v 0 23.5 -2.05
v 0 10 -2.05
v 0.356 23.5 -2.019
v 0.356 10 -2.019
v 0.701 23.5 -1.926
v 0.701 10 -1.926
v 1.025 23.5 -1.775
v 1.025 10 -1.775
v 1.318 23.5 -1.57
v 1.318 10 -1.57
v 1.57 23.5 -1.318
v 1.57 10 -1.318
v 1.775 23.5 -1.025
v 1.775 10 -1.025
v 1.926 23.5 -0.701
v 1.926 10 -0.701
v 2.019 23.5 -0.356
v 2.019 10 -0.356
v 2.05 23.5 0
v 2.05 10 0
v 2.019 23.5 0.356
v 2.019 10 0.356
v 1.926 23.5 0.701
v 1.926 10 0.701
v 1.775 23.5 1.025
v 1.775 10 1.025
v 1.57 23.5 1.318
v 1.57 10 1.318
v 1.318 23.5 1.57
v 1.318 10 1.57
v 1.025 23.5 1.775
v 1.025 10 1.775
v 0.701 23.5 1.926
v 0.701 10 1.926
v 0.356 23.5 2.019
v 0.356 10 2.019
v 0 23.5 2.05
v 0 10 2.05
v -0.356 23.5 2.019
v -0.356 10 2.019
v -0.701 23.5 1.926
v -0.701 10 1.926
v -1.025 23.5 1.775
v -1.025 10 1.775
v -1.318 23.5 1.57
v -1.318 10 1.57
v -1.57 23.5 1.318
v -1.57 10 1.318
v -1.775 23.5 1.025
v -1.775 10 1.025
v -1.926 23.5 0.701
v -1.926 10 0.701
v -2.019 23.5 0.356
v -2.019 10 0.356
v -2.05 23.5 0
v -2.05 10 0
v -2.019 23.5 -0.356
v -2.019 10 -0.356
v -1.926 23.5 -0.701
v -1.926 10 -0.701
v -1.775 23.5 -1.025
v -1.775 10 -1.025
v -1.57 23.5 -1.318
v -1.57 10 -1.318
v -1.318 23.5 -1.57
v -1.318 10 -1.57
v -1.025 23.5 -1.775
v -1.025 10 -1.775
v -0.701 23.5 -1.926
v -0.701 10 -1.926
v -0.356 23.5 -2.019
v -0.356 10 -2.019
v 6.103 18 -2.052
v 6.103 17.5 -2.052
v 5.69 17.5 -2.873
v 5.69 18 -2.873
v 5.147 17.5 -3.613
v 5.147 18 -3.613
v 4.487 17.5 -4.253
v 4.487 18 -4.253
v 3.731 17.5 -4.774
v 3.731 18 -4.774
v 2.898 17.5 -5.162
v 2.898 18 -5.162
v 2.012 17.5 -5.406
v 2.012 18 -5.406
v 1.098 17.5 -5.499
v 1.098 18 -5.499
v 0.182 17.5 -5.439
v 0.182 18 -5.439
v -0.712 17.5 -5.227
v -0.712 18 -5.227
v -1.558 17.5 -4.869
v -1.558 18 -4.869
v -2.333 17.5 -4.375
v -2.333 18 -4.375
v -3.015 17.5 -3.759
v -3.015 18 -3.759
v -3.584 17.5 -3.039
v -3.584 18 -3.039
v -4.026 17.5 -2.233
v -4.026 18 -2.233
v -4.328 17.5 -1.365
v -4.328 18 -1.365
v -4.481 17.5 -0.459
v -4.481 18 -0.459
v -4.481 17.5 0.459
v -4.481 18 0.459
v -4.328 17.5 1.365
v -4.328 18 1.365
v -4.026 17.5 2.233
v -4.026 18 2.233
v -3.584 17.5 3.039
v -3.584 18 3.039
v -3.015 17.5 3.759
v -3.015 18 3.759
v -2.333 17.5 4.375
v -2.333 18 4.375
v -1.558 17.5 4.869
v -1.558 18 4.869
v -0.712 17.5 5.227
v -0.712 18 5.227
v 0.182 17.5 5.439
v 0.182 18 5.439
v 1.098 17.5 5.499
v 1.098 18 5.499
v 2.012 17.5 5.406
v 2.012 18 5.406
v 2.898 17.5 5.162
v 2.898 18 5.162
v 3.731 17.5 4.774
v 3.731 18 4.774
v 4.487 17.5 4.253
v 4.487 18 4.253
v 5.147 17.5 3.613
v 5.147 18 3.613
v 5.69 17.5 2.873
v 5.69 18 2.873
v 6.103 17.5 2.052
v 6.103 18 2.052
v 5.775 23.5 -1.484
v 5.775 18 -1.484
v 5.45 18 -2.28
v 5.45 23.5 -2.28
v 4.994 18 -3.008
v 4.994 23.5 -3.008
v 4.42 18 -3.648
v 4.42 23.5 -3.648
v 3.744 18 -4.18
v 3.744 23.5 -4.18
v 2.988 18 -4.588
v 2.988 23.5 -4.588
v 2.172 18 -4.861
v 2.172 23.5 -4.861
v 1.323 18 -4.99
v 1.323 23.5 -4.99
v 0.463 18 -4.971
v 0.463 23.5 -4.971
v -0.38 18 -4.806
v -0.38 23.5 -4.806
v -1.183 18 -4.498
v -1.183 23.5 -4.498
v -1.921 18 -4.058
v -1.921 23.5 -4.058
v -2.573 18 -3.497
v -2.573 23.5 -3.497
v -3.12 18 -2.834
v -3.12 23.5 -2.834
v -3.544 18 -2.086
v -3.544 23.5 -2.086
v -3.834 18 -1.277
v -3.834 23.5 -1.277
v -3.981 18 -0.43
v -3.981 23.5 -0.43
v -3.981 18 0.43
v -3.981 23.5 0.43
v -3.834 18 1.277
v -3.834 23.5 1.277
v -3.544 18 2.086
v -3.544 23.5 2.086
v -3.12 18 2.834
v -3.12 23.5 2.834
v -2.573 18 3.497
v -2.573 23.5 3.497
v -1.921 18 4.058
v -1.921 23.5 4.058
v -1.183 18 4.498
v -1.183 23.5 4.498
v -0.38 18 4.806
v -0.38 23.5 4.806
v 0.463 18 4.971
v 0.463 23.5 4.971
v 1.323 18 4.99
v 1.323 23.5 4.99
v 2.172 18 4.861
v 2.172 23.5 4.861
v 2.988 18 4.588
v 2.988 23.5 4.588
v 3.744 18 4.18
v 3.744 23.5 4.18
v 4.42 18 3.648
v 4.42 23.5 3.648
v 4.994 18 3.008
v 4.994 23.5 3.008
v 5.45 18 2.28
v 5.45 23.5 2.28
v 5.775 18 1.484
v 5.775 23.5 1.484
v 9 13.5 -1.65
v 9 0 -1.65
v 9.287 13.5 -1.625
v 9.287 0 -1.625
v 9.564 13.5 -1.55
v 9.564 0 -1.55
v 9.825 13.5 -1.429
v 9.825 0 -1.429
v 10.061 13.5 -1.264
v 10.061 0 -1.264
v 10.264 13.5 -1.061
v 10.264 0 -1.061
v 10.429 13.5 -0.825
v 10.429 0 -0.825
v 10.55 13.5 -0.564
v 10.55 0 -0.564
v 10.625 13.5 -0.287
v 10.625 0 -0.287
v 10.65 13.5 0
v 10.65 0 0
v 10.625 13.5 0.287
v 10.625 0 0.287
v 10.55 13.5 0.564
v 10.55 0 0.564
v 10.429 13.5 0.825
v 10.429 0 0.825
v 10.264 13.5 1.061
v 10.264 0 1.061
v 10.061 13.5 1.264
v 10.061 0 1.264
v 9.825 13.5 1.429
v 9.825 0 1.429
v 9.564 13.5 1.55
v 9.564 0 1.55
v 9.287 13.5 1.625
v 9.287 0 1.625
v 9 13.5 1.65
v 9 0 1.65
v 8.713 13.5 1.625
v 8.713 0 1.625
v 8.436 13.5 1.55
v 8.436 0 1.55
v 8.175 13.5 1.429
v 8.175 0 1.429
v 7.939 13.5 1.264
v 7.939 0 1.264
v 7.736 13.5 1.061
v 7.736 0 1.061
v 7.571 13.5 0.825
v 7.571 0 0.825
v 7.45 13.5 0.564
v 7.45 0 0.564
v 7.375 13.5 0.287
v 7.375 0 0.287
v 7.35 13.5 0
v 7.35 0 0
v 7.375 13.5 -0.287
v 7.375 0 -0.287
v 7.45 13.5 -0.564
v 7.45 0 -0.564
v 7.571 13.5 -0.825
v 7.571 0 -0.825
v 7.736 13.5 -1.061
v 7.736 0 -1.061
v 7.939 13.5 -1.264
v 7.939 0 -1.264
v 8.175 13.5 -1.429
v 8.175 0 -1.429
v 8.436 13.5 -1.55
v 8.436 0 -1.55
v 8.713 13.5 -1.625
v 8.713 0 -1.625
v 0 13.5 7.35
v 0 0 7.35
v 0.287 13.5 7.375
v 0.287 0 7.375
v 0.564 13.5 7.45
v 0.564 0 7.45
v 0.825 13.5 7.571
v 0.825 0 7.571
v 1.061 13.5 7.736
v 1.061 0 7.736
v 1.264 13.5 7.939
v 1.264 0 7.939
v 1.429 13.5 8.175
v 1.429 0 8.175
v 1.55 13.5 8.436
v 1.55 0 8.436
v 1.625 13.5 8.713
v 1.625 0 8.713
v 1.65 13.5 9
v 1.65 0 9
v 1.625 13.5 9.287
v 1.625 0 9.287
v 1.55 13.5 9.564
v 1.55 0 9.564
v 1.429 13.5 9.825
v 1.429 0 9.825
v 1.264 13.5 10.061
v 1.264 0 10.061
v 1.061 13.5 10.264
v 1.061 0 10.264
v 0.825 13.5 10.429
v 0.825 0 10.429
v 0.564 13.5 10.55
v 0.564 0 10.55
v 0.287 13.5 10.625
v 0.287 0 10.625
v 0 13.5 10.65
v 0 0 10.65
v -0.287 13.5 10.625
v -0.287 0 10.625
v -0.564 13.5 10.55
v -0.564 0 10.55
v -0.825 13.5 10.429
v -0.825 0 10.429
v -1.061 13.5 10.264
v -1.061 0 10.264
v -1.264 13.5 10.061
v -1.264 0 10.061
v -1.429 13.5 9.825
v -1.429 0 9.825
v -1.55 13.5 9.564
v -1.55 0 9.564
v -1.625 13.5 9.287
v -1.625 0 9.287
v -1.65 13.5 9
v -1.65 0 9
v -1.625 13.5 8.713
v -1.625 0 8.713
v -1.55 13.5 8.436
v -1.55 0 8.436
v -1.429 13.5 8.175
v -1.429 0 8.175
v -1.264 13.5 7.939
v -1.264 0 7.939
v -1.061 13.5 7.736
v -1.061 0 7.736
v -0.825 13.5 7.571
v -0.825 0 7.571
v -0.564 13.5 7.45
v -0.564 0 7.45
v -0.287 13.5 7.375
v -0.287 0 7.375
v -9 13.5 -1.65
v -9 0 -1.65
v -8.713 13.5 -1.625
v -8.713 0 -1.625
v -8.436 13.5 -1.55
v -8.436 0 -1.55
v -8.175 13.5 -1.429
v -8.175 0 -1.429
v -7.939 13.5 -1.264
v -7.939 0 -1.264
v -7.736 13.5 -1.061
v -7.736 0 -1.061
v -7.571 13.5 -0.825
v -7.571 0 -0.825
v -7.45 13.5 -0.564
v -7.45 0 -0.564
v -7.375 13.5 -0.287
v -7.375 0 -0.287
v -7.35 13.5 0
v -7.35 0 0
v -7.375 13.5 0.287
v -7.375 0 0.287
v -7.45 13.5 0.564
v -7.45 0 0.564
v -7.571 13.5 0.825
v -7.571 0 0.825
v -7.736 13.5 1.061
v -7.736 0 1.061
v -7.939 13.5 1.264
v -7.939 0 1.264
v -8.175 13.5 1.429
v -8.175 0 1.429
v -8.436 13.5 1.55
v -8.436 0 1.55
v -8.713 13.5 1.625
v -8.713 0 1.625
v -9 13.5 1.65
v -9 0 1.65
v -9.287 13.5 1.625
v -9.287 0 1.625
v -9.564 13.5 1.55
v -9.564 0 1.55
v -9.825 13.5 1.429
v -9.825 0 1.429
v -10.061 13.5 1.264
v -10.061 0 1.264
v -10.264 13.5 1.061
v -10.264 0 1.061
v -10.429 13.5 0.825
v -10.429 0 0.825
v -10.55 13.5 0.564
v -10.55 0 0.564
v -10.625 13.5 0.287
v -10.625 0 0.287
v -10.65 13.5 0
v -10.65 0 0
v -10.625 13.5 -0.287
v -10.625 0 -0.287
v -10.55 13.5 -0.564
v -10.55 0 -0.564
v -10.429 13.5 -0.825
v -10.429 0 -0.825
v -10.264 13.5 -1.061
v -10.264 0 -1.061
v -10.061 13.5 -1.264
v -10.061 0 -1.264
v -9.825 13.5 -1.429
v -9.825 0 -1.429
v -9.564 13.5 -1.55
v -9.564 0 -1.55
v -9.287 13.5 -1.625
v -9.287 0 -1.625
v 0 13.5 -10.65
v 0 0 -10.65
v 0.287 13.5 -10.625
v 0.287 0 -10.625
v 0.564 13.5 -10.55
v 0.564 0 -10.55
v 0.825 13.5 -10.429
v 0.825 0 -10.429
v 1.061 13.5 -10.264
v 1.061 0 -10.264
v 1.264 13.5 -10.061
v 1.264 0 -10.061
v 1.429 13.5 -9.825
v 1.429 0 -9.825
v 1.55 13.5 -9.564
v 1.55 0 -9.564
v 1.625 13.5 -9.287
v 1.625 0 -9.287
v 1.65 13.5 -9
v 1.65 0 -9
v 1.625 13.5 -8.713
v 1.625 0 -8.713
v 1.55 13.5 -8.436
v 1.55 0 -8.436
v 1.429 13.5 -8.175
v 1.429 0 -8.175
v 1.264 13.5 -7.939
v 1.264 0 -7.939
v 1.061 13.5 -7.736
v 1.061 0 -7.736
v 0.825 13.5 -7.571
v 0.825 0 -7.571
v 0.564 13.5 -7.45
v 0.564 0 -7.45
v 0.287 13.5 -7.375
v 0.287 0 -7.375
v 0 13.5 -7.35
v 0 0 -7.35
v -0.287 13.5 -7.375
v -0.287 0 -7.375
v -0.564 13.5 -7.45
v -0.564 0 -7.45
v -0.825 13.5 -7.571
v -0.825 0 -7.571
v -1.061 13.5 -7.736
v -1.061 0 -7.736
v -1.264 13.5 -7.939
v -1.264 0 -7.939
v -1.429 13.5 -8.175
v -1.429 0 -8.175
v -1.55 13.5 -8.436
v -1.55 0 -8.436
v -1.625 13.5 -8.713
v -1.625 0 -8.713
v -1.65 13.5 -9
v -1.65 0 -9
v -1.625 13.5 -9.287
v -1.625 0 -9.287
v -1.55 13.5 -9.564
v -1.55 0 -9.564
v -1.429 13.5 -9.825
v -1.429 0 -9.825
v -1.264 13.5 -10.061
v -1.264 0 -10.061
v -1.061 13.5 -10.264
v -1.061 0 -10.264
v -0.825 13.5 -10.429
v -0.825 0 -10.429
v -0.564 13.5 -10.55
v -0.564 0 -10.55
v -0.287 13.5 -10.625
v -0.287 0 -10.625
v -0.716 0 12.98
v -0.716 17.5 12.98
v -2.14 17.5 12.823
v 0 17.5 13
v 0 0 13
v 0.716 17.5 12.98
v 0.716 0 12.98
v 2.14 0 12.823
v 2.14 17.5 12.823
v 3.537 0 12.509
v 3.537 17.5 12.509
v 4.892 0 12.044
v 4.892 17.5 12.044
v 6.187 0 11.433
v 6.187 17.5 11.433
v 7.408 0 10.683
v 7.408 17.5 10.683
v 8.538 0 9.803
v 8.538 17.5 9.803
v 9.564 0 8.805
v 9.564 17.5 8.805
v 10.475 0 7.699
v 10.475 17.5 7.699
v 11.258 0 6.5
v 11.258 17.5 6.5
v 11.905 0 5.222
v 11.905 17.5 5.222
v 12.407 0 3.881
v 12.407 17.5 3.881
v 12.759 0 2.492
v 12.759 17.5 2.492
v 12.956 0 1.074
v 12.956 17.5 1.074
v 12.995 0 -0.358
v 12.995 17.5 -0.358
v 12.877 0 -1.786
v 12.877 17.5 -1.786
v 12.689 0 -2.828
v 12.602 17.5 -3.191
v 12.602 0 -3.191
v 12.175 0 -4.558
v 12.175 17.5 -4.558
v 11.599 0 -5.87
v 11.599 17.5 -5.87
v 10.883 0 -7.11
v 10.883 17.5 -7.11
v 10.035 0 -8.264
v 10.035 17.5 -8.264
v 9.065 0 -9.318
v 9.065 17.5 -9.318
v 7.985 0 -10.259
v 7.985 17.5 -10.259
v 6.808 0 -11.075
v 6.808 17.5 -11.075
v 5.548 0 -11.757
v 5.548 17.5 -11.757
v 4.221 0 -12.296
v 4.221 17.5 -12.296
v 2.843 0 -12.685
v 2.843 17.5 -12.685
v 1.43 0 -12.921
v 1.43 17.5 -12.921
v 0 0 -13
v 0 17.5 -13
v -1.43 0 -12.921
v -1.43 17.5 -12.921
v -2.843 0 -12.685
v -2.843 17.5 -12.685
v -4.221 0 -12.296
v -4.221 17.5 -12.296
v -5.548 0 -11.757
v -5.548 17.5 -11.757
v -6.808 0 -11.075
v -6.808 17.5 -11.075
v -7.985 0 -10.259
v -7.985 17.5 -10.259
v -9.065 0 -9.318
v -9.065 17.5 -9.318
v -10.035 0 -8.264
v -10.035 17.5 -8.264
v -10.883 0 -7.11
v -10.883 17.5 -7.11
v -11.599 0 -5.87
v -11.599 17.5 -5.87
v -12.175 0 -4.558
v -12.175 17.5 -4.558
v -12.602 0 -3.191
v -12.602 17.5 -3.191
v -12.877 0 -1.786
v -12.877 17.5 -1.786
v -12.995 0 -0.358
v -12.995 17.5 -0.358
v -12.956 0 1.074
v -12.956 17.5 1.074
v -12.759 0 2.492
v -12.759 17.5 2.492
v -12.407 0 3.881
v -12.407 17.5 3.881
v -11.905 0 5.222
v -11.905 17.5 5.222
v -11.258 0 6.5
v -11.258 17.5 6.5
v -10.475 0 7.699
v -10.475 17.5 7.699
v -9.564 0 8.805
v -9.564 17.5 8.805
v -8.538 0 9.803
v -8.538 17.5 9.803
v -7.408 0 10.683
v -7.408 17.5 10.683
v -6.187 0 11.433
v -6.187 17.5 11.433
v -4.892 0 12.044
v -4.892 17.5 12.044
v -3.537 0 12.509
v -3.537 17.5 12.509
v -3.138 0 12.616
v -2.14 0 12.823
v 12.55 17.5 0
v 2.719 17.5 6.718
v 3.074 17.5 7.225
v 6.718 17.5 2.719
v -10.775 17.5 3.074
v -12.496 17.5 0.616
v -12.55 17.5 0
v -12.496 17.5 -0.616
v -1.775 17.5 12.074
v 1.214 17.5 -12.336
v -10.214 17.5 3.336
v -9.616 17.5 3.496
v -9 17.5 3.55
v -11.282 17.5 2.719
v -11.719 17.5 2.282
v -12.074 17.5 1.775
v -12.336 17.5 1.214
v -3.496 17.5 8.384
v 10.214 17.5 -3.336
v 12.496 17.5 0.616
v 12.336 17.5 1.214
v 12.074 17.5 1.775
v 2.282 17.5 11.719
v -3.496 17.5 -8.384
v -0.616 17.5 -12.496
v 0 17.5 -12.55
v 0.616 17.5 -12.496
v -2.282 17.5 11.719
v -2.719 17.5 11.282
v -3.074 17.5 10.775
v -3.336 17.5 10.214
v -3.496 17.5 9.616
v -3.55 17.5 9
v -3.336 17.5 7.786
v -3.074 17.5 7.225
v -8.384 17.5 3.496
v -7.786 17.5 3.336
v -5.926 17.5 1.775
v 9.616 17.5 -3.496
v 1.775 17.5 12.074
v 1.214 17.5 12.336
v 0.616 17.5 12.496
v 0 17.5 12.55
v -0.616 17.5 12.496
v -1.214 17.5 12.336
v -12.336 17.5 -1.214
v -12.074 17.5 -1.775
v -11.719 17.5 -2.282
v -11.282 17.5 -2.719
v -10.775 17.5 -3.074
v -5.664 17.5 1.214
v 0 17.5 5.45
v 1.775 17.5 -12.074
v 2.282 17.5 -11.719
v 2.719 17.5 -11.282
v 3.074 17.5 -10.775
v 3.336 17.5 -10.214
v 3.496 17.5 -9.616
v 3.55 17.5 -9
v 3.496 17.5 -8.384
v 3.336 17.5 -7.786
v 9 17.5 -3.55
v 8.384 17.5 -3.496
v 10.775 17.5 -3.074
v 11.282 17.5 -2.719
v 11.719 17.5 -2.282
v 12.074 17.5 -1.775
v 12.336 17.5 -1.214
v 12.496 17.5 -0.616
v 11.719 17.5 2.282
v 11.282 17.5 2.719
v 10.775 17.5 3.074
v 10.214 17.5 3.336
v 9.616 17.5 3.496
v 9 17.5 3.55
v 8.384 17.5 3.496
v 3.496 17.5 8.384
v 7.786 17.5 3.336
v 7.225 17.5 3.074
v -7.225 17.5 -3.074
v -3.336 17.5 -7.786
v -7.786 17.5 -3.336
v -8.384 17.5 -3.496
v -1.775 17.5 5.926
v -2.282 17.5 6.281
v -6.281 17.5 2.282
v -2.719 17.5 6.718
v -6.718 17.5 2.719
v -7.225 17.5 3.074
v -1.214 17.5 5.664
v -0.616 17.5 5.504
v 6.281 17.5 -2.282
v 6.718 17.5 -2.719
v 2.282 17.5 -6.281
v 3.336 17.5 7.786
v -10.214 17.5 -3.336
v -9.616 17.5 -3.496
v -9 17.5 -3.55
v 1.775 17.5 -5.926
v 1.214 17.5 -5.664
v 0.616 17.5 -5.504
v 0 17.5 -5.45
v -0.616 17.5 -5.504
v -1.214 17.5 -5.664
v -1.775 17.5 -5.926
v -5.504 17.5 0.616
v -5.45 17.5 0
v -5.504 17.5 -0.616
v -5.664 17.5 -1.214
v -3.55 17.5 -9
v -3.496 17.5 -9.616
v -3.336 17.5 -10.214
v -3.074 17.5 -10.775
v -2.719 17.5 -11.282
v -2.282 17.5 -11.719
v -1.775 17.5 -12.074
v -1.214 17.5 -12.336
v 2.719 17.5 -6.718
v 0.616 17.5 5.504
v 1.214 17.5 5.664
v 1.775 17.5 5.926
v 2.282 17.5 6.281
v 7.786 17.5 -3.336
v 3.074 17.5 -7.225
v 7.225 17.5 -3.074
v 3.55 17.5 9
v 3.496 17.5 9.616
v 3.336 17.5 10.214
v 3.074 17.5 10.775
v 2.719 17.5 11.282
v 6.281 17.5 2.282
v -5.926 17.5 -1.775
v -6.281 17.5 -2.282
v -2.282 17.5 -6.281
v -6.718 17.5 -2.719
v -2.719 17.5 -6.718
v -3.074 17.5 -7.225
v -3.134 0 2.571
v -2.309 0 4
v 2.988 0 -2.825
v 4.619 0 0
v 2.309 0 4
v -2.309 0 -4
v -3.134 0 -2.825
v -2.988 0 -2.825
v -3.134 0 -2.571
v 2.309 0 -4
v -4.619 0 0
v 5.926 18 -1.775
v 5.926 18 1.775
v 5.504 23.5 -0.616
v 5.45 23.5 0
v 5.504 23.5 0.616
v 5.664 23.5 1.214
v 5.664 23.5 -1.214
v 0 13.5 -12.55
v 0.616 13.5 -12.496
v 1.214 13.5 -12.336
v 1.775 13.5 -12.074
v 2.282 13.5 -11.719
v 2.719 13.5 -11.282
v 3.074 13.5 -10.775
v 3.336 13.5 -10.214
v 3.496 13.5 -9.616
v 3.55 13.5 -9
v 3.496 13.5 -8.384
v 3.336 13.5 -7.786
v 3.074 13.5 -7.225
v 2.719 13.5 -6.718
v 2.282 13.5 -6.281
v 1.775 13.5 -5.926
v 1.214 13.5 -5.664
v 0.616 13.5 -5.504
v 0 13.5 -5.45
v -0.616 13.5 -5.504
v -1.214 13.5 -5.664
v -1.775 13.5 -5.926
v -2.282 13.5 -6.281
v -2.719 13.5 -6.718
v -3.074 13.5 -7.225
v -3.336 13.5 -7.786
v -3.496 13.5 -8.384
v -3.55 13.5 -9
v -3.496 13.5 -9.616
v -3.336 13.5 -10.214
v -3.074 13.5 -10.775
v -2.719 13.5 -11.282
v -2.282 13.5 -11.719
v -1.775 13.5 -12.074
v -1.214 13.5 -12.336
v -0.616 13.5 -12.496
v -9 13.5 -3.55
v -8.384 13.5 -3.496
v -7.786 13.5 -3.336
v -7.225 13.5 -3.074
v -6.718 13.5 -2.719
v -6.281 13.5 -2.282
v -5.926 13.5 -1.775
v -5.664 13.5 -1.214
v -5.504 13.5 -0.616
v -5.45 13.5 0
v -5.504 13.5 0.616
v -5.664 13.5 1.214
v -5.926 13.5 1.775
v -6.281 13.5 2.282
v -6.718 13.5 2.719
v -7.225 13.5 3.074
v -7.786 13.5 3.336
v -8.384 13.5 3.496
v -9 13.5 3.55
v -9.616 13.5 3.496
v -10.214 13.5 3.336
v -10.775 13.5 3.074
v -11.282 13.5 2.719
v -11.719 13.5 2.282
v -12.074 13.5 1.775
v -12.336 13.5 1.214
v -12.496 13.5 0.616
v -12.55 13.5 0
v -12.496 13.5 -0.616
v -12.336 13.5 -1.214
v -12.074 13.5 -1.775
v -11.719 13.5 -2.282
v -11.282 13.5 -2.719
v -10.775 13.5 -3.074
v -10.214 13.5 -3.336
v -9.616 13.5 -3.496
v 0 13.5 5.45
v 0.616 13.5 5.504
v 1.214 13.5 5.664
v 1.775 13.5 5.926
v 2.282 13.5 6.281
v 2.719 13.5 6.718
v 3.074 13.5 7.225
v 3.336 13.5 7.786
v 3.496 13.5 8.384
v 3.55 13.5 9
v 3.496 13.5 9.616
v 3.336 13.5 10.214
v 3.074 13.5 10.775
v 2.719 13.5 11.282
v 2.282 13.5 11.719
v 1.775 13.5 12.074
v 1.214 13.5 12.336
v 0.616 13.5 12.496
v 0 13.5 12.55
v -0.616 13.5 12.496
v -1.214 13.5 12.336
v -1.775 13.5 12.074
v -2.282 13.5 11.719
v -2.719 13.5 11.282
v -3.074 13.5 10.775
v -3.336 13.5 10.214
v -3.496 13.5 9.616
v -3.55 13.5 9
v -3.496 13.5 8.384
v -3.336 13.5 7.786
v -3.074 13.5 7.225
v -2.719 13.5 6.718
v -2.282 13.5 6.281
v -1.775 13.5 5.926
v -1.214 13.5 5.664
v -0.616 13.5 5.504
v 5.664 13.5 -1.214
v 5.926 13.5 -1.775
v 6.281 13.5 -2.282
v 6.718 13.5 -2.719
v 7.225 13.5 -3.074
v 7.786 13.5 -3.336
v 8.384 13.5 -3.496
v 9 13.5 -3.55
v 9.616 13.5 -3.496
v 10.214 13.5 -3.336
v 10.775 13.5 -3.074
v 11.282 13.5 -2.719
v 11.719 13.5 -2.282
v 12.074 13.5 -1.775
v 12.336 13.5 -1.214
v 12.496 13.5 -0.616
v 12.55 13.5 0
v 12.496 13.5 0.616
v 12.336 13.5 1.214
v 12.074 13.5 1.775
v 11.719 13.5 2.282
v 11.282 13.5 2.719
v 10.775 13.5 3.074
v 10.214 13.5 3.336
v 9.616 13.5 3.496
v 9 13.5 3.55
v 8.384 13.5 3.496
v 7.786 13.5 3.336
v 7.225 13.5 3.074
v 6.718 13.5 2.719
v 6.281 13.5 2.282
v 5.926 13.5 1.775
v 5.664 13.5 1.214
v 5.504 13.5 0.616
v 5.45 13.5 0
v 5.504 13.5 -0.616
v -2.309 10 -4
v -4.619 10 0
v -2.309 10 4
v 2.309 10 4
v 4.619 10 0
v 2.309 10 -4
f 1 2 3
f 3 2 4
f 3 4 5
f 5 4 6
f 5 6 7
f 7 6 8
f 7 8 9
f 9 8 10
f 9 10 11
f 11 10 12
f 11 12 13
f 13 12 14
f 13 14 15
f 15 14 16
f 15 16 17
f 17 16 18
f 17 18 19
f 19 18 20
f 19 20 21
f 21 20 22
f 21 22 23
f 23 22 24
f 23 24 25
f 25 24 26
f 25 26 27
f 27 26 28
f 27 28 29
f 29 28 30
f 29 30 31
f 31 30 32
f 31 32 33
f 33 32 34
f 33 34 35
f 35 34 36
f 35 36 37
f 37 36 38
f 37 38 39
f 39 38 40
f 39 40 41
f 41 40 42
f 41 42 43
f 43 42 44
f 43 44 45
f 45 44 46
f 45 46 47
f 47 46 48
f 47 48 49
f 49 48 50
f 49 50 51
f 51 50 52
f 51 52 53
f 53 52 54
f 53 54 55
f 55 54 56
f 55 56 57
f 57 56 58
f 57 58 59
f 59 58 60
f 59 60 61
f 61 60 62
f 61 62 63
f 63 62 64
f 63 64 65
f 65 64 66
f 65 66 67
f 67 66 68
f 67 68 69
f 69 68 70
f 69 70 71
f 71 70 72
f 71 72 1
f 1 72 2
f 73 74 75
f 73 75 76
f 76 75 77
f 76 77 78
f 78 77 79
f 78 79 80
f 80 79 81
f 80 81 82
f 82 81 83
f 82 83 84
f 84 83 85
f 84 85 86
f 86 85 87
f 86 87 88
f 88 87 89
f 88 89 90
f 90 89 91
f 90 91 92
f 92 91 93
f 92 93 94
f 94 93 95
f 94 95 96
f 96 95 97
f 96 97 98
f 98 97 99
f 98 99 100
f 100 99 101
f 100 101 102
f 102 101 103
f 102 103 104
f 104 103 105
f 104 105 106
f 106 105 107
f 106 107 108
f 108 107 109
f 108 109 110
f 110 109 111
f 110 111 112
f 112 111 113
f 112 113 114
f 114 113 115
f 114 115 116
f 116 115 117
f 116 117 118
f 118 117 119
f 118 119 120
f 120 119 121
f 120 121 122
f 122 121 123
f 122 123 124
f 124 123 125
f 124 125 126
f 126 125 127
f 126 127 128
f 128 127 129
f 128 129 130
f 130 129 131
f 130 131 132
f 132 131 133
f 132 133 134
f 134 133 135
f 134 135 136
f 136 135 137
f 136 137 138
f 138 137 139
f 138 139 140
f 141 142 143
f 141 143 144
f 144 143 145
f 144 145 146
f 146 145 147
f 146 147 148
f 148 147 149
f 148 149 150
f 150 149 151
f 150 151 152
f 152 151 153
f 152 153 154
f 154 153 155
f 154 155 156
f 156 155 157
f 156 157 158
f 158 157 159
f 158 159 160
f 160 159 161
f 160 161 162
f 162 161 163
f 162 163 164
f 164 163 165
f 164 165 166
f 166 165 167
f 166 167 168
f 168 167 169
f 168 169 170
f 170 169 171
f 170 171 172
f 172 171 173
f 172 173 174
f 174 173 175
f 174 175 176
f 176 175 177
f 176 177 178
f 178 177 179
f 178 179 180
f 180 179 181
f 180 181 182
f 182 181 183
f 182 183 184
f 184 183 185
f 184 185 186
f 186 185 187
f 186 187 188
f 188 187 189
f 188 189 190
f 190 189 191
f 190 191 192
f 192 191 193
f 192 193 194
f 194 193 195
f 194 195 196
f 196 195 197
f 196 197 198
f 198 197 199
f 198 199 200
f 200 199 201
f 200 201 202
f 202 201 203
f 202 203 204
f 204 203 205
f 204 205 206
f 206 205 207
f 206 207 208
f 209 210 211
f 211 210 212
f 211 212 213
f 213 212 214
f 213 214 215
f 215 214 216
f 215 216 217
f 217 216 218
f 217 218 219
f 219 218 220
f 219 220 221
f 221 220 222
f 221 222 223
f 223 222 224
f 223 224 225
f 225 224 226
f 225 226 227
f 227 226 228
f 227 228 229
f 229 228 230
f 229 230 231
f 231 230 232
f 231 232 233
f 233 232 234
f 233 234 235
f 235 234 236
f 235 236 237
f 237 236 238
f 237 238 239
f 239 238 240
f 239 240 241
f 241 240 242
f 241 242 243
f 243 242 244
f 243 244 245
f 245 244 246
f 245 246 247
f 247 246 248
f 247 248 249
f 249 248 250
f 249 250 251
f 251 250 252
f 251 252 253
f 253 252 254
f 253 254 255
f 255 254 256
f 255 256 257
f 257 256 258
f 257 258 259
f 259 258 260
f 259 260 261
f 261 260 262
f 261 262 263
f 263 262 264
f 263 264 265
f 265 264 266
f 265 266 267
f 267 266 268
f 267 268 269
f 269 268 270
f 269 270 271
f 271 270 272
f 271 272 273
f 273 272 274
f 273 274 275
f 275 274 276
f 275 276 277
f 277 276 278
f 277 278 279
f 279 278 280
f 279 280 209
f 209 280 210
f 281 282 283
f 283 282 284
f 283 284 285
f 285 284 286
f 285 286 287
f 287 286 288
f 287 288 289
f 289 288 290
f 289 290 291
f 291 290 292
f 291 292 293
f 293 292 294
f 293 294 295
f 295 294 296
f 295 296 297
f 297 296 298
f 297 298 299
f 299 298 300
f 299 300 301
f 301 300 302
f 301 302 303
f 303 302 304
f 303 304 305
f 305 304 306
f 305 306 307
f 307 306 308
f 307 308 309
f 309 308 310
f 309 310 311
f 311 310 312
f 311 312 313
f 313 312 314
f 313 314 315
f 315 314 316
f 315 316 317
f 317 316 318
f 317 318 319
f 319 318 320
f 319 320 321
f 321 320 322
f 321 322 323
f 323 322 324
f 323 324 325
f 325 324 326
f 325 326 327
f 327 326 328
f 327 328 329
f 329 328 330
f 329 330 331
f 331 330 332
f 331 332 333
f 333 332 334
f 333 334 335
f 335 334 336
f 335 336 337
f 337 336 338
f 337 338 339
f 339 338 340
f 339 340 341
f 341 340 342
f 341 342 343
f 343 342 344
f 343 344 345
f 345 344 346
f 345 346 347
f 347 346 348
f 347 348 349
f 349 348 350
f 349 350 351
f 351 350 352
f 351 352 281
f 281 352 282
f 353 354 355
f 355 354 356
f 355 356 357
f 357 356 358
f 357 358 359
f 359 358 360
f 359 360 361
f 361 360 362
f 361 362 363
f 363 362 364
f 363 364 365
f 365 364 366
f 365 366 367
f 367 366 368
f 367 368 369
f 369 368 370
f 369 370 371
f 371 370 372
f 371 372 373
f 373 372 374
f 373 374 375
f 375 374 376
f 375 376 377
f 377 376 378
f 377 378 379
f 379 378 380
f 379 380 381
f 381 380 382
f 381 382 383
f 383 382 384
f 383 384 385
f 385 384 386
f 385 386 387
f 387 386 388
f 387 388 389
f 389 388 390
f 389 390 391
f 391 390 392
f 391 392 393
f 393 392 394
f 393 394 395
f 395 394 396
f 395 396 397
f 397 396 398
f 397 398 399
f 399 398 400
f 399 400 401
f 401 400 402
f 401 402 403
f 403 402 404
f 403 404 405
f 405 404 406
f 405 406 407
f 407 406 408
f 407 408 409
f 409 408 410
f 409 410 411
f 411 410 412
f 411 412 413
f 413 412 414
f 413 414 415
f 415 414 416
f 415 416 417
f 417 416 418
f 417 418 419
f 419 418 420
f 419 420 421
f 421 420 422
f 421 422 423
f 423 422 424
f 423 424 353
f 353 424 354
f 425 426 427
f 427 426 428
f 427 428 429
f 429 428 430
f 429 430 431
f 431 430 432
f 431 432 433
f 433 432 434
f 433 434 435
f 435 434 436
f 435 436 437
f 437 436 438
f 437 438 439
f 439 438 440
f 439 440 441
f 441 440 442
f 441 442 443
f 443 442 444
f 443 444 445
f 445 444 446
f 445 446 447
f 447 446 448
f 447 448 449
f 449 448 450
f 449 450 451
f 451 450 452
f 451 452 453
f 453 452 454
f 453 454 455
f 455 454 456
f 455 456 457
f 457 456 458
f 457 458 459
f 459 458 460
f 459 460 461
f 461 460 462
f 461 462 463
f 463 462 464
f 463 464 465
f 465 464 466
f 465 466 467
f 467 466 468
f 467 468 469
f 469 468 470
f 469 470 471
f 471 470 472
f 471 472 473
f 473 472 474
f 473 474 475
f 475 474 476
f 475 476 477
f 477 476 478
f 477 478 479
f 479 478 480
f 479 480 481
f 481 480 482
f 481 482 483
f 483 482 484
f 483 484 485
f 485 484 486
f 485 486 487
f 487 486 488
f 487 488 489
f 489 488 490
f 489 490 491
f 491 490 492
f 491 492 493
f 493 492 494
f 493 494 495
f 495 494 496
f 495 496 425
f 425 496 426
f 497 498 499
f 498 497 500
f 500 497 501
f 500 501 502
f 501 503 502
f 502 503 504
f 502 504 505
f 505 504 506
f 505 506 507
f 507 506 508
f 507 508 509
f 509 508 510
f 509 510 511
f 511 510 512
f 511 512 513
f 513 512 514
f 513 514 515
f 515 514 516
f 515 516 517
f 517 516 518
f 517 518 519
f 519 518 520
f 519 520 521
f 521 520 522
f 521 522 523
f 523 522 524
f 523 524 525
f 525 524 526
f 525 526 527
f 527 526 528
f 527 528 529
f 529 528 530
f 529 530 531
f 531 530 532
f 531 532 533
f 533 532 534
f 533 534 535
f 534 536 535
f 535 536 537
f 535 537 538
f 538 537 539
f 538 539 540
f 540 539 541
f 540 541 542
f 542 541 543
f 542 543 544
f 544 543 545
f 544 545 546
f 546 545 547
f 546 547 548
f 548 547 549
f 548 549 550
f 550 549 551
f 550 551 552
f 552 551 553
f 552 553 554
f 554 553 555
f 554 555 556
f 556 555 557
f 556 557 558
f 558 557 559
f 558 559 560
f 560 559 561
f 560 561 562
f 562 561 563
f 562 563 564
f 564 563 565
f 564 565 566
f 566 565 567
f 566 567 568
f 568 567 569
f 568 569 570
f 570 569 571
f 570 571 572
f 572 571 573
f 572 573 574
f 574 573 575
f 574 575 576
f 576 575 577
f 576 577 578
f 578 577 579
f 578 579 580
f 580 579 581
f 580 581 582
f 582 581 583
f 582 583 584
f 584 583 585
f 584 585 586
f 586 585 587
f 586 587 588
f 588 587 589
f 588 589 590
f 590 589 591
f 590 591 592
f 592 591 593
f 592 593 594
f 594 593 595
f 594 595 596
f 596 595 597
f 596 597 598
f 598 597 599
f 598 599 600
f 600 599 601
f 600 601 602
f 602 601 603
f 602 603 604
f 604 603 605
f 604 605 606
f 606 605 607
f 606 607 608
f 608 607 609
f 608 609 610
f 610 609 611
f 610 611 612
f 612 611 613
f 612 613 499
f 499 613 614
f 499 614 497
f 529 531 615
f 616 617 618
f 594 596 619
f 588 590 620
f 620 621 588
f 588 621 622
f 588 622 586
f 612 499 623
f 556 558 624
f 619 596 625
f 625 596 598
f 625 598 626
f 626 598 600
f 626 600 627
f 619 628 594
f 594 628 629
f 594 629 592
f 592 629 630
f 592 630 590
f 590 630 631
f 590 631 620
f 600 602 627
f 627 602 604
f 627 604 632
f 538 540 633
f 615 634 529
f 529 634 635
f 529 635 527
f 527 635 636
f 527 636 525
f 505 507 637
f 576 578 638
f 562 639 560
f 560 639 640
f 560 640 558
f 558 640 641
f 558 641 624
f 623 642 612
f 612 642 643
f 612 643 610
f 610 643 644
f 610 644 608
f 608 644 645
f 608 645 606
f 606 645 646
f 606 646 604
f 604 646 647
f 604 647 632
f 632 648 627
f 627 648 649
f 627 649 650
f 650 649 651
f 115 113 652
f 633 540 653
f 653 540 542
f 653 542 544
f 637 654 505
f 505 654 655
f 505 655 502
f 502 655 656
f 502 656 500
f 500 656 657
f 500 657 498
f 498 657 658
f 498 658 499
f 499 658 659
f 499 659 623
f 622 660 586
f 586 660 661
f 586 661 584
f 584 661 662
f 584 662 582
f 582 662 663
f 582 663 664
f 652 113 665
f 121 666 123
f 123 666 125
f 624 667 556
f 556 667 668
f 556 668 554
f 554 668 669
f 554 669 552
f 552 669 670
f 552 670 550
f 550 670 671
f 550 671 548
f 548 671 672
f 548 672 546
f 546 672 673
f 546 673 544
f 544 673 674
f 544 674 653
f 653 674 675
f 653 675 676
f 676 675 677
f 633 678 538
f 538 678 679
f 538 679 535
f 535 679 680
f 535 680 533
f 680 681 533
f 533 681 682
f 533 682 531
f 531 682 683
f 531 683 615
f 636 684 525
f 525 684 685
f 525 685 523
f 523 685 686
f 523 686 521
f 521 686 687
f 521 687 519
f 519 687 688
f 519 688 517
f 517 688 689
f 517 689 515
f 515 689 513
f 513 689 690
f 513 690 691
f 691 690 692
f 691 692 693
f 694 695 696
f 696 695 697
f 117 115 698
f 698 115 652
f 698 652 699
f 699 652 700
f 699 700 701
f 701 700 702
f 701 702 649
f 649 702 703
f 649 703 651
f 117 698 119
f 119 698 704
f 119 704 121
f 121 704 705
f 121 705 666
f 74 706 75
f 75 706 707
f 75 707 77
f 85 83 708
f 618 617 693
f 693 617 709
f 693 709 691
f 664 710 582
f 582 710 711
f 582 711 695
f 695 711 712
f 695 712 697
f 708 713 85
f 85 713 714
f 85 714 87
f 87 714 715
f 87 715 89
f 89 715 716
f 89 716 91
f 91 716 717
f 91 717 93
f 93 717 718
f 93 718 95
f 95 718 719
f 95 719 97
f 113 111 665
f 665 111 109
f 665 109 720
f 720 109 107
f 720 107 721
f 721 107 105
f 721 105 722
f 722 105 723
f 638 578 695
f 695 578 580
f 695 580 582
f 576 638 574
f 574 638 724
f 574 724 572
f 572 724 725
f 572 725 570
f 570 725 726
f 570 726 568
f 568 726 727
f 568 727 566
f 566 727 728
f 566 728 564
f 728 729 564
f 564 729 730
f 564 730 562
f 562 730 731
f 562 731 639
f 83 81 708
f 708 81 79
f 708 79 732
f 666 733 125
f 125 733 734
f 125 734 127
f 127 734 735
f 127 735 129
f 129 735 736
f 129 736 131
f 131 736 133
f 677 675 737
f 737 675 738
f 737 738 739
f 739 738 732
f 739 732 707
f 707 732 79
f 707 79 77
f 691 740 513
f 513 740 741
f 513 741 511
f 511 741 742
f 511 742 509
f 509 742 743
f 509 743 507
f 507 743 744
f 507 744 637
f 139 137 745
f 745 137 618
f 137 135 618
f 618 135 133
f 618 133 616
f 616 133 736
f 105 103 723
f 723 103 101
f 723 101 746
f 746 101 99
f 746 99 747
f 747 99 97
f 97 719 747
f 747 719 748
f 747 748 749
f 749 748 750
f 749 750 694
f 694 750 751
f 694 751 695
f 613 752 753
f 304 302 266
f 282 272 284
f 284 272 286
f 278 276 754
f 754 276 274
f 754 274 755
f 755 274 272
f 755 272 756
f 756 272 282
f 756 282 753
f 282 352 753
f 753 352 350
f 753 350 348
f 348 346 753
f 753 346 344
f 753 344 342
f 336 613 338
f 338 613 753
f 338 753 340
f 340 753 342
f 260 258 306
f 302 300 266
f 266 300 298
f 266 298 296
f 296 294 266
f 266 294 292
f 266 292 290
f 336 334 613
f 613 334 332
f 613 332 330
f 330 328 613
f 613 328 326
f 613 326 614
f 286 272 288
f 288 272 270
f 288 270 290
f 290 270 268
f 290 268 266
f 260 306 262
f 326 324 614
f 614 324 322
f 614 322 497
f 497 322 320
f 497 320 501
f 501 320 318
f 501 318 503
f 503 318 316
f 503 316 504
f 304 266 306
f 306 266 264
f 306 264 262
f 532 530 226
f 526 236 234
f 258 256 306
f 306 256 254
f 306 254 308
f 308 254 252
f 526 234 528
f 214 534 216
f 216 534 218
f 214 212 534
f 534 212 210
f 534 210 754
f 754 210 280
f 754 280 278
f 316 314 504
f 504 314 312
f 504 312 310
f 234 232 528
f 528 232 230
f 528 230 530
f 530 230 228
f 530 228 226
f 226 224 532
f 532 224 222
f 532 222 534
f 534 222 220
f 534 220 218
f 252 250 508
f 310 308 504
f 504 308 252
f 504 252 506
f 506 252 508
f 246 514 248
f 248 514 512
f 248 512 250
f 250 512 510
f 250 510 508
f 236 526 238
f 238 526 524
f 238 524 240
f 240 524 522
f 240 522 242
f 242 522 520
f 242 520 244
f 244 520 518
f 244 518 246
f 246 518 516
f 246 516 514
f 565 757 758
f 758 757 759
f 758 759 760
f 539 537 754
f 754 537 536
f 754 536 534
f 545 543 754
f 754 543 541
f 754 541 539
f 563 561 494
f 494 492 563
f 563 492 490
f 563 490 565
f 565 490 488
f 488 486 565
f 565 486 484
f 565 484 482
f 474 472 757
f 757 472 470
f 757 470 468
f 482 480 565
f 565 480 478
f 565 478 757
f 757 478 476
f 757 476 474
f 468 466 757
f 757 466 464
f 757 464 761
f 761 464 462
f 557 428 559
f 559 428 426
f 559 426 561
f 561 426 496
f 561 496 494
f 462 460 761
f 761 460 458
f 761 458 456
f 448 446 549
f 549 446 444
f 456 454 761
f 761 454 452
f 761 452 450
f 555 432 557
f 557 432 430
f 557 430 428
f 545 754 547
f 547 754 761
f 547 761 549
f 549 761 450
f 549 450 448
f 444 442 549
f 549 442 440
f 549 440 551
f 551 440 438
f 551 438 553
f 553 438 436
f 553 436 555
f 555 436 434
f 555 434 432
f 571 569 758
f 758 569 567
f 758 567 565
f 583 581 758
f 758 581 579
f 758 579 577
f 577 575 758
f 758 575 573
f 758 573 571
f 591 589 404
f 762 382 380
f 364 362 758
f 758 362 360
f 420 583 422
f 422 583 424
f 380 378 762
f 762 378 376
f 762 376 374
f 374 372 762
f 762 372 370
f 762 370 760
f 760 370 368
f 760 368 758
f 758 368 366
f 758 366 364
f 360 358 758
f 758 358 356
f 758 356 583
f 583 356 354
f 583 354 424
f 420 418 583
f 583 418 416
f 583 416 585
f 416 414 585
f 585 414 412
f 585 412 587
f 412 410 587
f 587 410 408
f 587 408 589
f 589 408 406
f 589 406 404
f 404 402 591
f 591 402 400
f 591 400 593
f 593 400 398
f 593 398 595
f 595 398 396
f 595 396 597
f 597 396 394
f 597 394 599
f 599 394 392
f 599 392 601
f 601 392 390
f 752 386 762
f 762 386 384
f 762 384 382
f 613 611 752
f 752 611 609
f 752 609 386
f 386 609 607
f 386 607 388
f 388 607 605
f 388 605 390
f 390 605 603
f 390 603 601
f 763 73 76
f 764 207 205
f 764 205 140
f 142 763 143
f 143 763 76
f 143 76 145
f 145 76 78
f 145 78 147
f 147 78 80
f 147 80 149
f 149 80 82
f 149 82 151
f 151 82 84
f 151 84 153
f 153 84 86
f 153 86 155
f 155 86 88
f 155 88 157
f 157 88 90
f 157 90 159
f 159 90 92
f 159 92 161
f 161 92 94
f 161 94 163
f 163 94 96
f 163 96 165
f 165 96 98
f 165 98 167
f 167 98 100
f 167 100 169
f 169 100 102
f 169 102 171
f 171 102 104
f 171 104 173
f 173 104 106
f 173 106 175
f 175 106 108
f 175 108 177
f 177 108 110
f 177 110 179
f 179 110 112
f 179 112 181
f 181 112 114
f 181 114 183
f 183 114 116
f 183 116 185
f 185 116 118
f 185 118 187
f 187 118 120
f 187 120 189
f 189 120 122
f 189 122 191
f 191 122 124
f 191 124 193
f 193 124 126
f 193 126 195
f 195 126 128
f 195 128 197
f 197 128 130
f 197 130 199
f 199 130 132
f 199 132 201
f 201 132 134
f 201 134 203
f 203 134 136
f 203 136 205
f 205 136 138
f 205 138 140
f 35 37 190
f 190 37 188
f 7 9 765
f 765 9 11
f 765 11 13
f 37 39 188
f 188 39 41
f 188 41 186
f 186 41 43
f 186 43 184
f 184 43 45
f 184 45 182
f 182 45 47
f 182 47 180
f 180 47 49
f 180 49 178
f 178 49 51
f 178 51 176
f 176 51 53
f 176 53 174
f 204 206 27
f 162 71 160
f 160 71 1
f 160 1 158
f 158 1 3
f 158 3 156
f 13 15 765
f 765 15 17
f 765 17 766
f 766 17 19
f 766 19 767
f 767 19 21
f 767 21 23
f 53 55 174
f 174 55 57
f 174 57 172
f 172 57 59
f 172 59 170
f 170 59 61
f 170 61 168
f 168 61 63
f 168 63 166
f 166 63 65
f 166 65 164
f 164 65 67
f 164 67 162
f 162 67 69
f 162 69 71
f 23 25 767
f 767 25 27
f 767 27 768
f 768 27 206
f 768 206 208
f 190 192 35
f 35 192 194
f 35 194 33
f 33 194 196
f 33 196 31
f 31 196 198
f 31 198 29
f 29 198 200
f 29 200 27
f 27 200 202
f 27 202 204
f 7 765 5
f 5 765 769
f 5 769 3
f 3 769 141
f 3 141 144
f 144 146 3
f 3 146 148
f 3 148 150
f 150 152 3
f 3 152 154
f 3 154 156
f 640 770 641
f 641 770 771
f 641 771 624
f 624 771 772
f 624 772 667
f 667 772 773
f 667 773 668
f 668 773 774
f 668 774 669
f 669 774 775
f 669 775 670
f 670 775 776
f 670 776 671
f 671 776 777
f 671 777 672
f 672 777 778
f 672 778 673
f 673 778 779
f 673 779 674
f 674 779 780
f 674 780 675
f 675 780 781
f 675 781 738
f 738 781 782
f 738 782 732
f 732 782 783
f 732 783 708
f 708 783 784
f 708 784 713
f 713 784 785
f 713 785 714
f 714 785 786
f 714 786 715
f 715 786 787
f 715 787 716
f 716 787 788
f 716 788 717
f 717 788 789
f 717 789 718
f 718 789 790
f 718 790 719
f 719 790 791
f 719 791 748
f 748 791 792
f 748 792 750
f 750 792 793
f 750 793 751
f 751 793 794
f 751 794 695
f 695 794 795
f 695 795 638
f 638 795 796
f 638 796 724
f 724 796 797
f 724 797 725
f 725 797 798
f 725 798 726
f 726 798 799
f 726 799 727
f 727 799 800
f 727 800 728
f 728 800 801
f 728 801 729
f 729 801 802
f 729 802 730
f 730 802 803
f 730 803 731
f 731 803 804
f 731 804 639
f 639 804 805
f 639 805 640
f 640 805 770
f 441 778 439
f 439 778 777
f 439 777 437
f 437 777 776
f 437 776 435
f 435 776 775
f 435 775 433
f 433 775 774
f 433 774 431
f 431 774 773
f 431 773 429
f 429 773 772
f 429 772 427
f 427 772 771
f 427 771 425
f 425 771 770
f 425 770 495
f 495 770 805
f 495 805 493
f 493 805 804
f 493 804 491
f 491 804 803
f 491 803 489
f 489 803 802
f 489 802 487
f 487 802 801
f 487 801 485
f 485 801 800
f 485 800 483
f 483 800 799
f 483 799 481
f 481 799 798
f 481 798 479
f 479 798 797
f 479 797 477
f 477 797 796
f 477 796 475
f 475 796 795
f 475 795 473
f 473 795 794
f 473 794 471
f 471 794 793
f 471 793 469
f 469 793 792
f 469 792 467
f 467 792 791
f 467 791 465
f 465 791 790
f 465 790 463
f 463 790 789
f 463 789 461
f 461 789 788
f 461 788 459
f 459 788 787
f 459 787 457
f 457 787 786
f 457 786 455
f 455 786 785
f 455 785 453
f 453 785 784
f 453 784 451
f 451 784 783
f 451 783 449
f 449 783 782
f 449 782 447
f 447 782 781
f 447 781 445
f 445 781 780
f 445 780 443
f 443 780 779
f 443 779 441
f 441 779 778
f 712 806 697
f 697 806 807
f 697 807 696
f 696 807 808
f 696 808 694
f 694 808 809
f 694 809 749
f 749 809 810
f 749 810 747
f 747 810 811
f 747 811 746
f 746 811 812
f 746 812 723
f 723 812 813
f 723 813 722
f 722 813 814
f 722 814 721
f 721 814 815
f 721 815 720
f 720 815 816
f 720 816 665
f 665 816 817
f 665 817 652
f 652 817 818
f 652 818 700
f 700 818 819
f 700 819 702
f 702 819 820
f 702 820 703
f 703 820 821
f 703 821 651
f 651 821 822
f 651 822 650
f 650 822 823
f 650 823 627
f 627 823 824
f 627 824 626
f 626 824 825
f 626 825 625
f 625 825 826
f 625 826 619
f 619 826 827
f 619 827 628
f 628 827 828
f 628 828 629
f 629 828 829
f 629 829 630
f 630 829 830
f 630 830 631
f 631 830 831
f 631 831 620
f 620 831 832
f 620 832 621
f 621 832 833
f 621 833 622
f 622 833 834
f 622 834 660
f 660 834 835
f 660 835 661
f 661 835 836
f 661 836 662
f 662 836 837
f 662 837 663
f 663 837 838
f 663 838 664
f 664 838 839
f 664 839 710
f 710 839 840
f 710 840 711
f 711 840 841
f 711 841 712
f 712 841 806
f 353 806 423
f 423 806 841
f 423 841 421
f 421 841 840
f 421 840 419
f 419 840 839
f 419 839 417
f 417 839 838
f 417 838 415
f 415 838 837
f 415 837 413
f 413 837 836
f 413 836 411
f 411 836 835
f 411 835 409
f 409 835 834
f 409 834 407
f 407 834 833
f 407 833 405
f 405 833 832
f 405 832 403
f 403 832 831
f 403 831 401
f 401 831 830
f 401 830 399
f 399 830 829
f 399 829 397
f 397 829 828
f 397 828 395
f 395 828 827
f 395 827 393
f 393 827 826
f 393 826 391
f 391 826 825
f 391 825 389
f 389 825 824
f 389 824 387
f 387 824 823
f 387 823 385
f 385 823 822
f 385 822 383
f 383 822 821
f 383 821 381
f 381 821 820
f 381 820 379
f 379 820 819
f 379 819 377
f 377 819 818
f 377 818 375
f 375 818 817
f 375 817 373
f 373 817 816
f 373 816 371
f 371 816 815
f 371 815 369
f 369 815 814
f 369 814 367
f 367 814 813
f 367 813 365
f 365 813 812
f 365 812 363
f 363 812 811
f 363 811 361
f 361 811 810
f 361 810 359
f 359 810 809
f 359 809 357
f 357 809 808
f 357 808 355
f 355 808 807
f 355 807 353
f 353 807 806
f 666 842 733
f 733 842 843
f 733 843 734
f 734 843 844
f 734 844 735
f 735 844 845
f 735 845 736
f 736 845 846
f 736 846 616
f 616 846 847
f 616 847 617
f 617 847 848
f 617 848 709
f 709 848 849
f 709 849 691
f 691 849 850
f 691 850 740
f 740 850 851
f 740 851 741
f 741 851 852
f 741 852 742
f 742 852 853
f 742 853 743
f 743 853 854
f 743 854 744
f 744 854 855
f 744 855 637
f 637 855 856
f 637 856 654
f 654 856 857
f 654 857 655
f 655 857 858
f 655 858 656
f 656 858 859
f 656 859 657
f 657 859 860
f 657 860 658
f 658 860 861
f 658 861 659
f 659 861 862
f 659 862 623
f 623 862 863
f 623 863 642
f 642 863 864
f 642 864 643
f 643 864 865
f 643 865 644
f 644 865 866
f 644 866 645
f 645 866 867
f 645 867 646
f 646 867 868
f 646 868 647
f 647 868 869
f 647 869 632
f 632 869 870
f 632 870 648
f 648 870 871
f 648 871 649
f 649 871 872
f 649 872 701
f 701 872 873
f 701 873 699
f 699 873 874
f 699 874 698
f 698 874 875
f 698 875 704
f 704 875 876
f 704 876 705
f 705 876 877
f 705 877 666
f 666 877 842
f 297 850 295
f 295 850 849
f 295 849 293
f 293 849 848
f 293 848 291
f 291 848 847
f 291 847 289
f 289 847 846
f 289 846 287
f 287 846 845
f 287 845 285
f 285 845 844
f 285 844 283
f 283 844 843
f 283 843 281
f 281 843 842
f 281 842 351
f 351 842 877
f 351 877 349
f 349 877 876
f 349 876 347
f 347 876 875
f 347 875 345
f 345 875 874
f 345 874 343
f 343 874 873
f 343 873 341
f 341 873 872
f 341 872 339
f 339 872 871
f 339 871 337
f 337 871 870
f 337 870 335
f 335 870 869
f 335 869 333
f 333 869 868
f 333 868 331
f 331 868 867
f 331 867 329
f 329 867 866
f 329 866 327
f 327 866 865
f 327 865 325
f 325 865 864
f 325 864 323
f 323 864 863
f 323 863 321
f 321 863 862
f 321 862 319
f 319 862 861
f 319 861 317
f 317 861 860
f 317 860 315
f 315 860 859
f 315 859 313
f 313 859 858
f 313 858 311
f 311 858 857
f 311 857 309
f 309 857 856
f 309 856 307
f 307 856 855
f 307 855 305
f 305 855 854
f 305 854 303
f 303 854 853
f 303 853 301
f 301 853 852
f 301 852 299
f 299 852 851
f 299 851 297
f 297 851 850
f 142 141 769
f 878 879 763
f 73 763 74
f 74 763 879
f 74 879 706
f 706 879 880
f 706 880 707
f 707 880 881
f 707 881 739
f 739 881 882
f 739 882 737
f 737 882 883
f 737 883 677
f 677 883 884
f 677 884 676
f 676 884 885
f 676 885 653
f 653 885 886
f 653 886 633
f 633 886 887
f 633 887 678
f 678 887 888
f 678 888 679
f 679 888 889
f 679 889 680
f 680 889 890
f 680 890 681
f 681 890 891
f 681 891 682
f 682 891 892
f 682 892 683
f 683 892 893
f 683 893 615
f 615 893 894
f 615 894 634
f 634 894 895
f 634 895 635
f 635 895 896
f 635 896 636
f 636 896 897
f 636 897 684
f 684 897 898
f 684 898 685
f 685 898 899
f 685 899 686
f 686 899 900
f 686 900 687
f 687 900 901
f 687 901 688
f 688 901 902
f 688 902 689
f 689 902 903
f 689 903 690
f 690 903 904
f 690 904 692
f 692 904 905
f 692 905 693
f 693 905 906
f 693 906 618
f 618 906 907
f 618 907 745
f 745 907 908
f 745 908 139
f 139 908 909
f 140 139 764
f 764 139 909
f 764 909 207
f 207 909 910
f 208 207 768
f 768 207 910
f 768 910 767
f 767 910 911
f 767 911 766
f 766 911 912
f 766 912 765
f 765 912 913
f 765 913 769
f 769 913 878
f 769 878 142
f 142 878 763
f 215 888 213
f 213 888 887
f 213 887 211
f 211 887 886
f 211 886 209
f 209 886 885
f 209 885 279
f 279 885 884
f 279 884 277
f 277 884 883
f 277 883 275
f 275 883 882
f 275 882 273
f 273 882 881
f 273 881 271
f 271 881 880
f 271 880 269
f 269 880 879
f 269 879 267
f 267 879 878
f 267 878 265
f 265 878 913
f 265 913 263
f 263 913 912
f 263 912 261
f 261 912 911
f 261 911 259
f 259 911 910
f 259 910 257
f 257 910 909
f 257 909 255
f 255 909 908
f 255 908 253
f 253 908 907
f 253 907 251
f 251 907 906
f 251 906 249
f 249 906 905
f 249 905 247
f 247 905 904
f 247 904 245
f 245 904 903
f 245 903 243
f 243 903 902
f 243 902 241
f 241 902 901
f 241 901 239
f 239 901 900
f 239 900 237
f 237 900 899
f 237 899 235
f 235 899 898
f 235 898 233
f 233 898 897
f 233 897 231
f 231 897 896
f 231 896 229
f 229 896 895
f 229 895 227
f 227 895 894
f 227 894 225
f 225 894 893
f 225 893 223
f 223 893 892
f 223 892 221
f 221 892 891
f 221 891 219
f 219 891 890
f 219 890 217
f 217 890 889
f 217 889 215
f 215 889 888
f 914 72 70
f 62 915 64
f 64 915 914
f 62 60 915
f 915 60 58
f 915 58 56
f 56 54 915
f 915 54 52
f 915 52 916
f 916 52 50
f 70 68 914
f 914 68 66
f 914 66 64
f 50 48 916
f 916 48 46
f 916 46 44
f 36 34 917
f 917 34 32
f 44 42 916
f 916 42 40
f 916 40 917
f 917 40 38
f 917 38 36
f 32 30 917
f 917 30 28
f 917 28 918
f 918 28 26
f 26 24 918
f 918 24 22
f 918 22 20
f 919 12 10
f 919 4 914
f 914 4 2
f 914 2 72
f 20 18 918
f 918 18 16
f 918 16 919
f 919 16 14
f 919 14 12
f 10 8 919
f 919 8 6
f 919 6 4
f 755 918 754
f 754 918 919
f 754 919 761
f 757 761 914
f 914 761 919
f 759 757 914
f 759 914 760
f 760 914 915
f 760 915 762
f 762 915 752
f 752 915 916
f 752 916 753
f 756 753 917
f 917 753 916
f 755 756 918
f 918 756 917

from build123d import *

# Parameters (mm, degrees)
SKETCH1_R           = 13
BOSS_EXTRUDE1_DEPTH = 17.5
SKETCH6_R           = 5
BOSS_EXTRUDE2_DEPTH = 6
SKETCH7_R           = 5.5
BOSS_EXTRUDE3_DEPTH = 0.5
SKETCH2_R           = 1.65
CUT_EXTRUDE1_DEPTH  = 24.5
CUT_EXTRUDE3_START  = -4
SKETCH5_R           = 3.55
CUT_EXTRUDE3_DEPTH  = 11
CIRPATTERN1_COUNT   = 4
SKETCH3_R           = 2.05
CUT_EXTRUDE2_DEPTH  = 24.5
SKETCH8_R           = 2.75
CUT_EXTRUDE4_DEPTH  = 10
CUT_EXTRUDE5_DEPTH  = 10


with BuildPart() as part:
    # Sketch1 → Boss-Extrude1 (new body)
    with BuildSketch(Plane(origin=(0, 0, 0), x_dir=(1, 0, 0), z_dir=(0, 1, 0))):
        Circle(SKETCH1_R)
    extrude(amount=BOSS_EXTRUDE1_DEPTH)

    # Sketch6 → Boss-Extrude2 (add)
    with BuildSketch(Plane(origin=(0, 17.5, 0), x_dir=(1, 0, 0), z_dir=(0, 1, 0))):
        with Locations((1, 0)):
            Circle(SKETCH6_R)
    extrude(amount=BOSS_EXTRUDE2_DEPTH)

    # Sketch7 → Boss-Extrude3 (add)
    with BuildSketch(Plane(origin=(0, 17.5, 0), x_dir=(1, 0, 0), z_dir=(0, 1, 0))):
        with Locations((1, 0)):
            Circle(SKETCH7_R)
    extrude(amount=BOSS_EXTRUDE3_DEPTH)

    # Sketch2 → Cut-Extrude1 (cut, through all)
    with BuildSketch(Plane(origin=(0, 0, 0), x_dir=(1, 0, 0), z_dir=(0, 1, 0))):
        with Locations((0, 9)):
            Circle(SKETCH2_R)
    cut_extrude1 = extrude(amount=CUT_EXTRUDE1_DEPTH, mode=Mode.SUBTRACT)

    # Sketch5 → Cut-Extrude3 (cut)
    with BuildSketch(Plane(origin=(0, 17.5, 0), x_dir=(1, 0, 0), z_dir=(0, 1, 0)).offset(CUT_EXTRUDE3_START)):
        with Locations((0, 9)):
            Circle(SKETCH5_R)
    cut_extrude3 = extrude(amount=CUT_EXTRUDE3_DEPTH, mode=Mode.SUBTRACT)

    # CirPattern1: Cut-Extrude1, Cut-Extrude3 ×4 about axis
    cirpattern1_axis = Axis((0, 0, 0), (0, 1, 0))
    for i in range(1, CIRPATTERN1_COUNT):
        add(cut_extrude1.rotate(cirpattern1_axis, i * 360 / CIRPATTERN1_COUNT), mode=Mode.SUBTRACT)
        add(cut_extrude3.rotate(cirpattern1_axis, i * 360 / CIRPATTERN1_COUNT), mode=Mode.SUBTRACT)

    # Sketch3 → Cut-Extrude2 (cut, through all)
    with BuildSketch(Plane(origin=(0, 0, 0), x_dir=(1, 0, 0), z_dir=(0, 1, 0))):
        Circle(SKETCH3_R)
    extrude(amount=CUT_EXTRUDE2_DEPTH, mode=Mode.SUBTRACT)

    # Sketch8 → Cut-Extrude4 (cut)
    with BuildSketch(Plane.XZ):
        Circle(SKETCH8_R)
    extrude(amount=-CUT_EXTRUDE4_DEPTH, mode=Mode.SUBTRACT)

    # Sketch10 → Cut-Extrude5 (cut)
    with BuildSketch(Plane.XZ):
        Polygon((4.618802154, 0), (2.309401077, 4), (-2.309401077, 4), (-4.618802154, 0), (-2.309401077, -4), (2.309401077, -4), align=None)
    extrude(amount=-CUT_EXTRUDE5_DEPTH, mode=Mode.SUBTRACT)


solid = part.part
